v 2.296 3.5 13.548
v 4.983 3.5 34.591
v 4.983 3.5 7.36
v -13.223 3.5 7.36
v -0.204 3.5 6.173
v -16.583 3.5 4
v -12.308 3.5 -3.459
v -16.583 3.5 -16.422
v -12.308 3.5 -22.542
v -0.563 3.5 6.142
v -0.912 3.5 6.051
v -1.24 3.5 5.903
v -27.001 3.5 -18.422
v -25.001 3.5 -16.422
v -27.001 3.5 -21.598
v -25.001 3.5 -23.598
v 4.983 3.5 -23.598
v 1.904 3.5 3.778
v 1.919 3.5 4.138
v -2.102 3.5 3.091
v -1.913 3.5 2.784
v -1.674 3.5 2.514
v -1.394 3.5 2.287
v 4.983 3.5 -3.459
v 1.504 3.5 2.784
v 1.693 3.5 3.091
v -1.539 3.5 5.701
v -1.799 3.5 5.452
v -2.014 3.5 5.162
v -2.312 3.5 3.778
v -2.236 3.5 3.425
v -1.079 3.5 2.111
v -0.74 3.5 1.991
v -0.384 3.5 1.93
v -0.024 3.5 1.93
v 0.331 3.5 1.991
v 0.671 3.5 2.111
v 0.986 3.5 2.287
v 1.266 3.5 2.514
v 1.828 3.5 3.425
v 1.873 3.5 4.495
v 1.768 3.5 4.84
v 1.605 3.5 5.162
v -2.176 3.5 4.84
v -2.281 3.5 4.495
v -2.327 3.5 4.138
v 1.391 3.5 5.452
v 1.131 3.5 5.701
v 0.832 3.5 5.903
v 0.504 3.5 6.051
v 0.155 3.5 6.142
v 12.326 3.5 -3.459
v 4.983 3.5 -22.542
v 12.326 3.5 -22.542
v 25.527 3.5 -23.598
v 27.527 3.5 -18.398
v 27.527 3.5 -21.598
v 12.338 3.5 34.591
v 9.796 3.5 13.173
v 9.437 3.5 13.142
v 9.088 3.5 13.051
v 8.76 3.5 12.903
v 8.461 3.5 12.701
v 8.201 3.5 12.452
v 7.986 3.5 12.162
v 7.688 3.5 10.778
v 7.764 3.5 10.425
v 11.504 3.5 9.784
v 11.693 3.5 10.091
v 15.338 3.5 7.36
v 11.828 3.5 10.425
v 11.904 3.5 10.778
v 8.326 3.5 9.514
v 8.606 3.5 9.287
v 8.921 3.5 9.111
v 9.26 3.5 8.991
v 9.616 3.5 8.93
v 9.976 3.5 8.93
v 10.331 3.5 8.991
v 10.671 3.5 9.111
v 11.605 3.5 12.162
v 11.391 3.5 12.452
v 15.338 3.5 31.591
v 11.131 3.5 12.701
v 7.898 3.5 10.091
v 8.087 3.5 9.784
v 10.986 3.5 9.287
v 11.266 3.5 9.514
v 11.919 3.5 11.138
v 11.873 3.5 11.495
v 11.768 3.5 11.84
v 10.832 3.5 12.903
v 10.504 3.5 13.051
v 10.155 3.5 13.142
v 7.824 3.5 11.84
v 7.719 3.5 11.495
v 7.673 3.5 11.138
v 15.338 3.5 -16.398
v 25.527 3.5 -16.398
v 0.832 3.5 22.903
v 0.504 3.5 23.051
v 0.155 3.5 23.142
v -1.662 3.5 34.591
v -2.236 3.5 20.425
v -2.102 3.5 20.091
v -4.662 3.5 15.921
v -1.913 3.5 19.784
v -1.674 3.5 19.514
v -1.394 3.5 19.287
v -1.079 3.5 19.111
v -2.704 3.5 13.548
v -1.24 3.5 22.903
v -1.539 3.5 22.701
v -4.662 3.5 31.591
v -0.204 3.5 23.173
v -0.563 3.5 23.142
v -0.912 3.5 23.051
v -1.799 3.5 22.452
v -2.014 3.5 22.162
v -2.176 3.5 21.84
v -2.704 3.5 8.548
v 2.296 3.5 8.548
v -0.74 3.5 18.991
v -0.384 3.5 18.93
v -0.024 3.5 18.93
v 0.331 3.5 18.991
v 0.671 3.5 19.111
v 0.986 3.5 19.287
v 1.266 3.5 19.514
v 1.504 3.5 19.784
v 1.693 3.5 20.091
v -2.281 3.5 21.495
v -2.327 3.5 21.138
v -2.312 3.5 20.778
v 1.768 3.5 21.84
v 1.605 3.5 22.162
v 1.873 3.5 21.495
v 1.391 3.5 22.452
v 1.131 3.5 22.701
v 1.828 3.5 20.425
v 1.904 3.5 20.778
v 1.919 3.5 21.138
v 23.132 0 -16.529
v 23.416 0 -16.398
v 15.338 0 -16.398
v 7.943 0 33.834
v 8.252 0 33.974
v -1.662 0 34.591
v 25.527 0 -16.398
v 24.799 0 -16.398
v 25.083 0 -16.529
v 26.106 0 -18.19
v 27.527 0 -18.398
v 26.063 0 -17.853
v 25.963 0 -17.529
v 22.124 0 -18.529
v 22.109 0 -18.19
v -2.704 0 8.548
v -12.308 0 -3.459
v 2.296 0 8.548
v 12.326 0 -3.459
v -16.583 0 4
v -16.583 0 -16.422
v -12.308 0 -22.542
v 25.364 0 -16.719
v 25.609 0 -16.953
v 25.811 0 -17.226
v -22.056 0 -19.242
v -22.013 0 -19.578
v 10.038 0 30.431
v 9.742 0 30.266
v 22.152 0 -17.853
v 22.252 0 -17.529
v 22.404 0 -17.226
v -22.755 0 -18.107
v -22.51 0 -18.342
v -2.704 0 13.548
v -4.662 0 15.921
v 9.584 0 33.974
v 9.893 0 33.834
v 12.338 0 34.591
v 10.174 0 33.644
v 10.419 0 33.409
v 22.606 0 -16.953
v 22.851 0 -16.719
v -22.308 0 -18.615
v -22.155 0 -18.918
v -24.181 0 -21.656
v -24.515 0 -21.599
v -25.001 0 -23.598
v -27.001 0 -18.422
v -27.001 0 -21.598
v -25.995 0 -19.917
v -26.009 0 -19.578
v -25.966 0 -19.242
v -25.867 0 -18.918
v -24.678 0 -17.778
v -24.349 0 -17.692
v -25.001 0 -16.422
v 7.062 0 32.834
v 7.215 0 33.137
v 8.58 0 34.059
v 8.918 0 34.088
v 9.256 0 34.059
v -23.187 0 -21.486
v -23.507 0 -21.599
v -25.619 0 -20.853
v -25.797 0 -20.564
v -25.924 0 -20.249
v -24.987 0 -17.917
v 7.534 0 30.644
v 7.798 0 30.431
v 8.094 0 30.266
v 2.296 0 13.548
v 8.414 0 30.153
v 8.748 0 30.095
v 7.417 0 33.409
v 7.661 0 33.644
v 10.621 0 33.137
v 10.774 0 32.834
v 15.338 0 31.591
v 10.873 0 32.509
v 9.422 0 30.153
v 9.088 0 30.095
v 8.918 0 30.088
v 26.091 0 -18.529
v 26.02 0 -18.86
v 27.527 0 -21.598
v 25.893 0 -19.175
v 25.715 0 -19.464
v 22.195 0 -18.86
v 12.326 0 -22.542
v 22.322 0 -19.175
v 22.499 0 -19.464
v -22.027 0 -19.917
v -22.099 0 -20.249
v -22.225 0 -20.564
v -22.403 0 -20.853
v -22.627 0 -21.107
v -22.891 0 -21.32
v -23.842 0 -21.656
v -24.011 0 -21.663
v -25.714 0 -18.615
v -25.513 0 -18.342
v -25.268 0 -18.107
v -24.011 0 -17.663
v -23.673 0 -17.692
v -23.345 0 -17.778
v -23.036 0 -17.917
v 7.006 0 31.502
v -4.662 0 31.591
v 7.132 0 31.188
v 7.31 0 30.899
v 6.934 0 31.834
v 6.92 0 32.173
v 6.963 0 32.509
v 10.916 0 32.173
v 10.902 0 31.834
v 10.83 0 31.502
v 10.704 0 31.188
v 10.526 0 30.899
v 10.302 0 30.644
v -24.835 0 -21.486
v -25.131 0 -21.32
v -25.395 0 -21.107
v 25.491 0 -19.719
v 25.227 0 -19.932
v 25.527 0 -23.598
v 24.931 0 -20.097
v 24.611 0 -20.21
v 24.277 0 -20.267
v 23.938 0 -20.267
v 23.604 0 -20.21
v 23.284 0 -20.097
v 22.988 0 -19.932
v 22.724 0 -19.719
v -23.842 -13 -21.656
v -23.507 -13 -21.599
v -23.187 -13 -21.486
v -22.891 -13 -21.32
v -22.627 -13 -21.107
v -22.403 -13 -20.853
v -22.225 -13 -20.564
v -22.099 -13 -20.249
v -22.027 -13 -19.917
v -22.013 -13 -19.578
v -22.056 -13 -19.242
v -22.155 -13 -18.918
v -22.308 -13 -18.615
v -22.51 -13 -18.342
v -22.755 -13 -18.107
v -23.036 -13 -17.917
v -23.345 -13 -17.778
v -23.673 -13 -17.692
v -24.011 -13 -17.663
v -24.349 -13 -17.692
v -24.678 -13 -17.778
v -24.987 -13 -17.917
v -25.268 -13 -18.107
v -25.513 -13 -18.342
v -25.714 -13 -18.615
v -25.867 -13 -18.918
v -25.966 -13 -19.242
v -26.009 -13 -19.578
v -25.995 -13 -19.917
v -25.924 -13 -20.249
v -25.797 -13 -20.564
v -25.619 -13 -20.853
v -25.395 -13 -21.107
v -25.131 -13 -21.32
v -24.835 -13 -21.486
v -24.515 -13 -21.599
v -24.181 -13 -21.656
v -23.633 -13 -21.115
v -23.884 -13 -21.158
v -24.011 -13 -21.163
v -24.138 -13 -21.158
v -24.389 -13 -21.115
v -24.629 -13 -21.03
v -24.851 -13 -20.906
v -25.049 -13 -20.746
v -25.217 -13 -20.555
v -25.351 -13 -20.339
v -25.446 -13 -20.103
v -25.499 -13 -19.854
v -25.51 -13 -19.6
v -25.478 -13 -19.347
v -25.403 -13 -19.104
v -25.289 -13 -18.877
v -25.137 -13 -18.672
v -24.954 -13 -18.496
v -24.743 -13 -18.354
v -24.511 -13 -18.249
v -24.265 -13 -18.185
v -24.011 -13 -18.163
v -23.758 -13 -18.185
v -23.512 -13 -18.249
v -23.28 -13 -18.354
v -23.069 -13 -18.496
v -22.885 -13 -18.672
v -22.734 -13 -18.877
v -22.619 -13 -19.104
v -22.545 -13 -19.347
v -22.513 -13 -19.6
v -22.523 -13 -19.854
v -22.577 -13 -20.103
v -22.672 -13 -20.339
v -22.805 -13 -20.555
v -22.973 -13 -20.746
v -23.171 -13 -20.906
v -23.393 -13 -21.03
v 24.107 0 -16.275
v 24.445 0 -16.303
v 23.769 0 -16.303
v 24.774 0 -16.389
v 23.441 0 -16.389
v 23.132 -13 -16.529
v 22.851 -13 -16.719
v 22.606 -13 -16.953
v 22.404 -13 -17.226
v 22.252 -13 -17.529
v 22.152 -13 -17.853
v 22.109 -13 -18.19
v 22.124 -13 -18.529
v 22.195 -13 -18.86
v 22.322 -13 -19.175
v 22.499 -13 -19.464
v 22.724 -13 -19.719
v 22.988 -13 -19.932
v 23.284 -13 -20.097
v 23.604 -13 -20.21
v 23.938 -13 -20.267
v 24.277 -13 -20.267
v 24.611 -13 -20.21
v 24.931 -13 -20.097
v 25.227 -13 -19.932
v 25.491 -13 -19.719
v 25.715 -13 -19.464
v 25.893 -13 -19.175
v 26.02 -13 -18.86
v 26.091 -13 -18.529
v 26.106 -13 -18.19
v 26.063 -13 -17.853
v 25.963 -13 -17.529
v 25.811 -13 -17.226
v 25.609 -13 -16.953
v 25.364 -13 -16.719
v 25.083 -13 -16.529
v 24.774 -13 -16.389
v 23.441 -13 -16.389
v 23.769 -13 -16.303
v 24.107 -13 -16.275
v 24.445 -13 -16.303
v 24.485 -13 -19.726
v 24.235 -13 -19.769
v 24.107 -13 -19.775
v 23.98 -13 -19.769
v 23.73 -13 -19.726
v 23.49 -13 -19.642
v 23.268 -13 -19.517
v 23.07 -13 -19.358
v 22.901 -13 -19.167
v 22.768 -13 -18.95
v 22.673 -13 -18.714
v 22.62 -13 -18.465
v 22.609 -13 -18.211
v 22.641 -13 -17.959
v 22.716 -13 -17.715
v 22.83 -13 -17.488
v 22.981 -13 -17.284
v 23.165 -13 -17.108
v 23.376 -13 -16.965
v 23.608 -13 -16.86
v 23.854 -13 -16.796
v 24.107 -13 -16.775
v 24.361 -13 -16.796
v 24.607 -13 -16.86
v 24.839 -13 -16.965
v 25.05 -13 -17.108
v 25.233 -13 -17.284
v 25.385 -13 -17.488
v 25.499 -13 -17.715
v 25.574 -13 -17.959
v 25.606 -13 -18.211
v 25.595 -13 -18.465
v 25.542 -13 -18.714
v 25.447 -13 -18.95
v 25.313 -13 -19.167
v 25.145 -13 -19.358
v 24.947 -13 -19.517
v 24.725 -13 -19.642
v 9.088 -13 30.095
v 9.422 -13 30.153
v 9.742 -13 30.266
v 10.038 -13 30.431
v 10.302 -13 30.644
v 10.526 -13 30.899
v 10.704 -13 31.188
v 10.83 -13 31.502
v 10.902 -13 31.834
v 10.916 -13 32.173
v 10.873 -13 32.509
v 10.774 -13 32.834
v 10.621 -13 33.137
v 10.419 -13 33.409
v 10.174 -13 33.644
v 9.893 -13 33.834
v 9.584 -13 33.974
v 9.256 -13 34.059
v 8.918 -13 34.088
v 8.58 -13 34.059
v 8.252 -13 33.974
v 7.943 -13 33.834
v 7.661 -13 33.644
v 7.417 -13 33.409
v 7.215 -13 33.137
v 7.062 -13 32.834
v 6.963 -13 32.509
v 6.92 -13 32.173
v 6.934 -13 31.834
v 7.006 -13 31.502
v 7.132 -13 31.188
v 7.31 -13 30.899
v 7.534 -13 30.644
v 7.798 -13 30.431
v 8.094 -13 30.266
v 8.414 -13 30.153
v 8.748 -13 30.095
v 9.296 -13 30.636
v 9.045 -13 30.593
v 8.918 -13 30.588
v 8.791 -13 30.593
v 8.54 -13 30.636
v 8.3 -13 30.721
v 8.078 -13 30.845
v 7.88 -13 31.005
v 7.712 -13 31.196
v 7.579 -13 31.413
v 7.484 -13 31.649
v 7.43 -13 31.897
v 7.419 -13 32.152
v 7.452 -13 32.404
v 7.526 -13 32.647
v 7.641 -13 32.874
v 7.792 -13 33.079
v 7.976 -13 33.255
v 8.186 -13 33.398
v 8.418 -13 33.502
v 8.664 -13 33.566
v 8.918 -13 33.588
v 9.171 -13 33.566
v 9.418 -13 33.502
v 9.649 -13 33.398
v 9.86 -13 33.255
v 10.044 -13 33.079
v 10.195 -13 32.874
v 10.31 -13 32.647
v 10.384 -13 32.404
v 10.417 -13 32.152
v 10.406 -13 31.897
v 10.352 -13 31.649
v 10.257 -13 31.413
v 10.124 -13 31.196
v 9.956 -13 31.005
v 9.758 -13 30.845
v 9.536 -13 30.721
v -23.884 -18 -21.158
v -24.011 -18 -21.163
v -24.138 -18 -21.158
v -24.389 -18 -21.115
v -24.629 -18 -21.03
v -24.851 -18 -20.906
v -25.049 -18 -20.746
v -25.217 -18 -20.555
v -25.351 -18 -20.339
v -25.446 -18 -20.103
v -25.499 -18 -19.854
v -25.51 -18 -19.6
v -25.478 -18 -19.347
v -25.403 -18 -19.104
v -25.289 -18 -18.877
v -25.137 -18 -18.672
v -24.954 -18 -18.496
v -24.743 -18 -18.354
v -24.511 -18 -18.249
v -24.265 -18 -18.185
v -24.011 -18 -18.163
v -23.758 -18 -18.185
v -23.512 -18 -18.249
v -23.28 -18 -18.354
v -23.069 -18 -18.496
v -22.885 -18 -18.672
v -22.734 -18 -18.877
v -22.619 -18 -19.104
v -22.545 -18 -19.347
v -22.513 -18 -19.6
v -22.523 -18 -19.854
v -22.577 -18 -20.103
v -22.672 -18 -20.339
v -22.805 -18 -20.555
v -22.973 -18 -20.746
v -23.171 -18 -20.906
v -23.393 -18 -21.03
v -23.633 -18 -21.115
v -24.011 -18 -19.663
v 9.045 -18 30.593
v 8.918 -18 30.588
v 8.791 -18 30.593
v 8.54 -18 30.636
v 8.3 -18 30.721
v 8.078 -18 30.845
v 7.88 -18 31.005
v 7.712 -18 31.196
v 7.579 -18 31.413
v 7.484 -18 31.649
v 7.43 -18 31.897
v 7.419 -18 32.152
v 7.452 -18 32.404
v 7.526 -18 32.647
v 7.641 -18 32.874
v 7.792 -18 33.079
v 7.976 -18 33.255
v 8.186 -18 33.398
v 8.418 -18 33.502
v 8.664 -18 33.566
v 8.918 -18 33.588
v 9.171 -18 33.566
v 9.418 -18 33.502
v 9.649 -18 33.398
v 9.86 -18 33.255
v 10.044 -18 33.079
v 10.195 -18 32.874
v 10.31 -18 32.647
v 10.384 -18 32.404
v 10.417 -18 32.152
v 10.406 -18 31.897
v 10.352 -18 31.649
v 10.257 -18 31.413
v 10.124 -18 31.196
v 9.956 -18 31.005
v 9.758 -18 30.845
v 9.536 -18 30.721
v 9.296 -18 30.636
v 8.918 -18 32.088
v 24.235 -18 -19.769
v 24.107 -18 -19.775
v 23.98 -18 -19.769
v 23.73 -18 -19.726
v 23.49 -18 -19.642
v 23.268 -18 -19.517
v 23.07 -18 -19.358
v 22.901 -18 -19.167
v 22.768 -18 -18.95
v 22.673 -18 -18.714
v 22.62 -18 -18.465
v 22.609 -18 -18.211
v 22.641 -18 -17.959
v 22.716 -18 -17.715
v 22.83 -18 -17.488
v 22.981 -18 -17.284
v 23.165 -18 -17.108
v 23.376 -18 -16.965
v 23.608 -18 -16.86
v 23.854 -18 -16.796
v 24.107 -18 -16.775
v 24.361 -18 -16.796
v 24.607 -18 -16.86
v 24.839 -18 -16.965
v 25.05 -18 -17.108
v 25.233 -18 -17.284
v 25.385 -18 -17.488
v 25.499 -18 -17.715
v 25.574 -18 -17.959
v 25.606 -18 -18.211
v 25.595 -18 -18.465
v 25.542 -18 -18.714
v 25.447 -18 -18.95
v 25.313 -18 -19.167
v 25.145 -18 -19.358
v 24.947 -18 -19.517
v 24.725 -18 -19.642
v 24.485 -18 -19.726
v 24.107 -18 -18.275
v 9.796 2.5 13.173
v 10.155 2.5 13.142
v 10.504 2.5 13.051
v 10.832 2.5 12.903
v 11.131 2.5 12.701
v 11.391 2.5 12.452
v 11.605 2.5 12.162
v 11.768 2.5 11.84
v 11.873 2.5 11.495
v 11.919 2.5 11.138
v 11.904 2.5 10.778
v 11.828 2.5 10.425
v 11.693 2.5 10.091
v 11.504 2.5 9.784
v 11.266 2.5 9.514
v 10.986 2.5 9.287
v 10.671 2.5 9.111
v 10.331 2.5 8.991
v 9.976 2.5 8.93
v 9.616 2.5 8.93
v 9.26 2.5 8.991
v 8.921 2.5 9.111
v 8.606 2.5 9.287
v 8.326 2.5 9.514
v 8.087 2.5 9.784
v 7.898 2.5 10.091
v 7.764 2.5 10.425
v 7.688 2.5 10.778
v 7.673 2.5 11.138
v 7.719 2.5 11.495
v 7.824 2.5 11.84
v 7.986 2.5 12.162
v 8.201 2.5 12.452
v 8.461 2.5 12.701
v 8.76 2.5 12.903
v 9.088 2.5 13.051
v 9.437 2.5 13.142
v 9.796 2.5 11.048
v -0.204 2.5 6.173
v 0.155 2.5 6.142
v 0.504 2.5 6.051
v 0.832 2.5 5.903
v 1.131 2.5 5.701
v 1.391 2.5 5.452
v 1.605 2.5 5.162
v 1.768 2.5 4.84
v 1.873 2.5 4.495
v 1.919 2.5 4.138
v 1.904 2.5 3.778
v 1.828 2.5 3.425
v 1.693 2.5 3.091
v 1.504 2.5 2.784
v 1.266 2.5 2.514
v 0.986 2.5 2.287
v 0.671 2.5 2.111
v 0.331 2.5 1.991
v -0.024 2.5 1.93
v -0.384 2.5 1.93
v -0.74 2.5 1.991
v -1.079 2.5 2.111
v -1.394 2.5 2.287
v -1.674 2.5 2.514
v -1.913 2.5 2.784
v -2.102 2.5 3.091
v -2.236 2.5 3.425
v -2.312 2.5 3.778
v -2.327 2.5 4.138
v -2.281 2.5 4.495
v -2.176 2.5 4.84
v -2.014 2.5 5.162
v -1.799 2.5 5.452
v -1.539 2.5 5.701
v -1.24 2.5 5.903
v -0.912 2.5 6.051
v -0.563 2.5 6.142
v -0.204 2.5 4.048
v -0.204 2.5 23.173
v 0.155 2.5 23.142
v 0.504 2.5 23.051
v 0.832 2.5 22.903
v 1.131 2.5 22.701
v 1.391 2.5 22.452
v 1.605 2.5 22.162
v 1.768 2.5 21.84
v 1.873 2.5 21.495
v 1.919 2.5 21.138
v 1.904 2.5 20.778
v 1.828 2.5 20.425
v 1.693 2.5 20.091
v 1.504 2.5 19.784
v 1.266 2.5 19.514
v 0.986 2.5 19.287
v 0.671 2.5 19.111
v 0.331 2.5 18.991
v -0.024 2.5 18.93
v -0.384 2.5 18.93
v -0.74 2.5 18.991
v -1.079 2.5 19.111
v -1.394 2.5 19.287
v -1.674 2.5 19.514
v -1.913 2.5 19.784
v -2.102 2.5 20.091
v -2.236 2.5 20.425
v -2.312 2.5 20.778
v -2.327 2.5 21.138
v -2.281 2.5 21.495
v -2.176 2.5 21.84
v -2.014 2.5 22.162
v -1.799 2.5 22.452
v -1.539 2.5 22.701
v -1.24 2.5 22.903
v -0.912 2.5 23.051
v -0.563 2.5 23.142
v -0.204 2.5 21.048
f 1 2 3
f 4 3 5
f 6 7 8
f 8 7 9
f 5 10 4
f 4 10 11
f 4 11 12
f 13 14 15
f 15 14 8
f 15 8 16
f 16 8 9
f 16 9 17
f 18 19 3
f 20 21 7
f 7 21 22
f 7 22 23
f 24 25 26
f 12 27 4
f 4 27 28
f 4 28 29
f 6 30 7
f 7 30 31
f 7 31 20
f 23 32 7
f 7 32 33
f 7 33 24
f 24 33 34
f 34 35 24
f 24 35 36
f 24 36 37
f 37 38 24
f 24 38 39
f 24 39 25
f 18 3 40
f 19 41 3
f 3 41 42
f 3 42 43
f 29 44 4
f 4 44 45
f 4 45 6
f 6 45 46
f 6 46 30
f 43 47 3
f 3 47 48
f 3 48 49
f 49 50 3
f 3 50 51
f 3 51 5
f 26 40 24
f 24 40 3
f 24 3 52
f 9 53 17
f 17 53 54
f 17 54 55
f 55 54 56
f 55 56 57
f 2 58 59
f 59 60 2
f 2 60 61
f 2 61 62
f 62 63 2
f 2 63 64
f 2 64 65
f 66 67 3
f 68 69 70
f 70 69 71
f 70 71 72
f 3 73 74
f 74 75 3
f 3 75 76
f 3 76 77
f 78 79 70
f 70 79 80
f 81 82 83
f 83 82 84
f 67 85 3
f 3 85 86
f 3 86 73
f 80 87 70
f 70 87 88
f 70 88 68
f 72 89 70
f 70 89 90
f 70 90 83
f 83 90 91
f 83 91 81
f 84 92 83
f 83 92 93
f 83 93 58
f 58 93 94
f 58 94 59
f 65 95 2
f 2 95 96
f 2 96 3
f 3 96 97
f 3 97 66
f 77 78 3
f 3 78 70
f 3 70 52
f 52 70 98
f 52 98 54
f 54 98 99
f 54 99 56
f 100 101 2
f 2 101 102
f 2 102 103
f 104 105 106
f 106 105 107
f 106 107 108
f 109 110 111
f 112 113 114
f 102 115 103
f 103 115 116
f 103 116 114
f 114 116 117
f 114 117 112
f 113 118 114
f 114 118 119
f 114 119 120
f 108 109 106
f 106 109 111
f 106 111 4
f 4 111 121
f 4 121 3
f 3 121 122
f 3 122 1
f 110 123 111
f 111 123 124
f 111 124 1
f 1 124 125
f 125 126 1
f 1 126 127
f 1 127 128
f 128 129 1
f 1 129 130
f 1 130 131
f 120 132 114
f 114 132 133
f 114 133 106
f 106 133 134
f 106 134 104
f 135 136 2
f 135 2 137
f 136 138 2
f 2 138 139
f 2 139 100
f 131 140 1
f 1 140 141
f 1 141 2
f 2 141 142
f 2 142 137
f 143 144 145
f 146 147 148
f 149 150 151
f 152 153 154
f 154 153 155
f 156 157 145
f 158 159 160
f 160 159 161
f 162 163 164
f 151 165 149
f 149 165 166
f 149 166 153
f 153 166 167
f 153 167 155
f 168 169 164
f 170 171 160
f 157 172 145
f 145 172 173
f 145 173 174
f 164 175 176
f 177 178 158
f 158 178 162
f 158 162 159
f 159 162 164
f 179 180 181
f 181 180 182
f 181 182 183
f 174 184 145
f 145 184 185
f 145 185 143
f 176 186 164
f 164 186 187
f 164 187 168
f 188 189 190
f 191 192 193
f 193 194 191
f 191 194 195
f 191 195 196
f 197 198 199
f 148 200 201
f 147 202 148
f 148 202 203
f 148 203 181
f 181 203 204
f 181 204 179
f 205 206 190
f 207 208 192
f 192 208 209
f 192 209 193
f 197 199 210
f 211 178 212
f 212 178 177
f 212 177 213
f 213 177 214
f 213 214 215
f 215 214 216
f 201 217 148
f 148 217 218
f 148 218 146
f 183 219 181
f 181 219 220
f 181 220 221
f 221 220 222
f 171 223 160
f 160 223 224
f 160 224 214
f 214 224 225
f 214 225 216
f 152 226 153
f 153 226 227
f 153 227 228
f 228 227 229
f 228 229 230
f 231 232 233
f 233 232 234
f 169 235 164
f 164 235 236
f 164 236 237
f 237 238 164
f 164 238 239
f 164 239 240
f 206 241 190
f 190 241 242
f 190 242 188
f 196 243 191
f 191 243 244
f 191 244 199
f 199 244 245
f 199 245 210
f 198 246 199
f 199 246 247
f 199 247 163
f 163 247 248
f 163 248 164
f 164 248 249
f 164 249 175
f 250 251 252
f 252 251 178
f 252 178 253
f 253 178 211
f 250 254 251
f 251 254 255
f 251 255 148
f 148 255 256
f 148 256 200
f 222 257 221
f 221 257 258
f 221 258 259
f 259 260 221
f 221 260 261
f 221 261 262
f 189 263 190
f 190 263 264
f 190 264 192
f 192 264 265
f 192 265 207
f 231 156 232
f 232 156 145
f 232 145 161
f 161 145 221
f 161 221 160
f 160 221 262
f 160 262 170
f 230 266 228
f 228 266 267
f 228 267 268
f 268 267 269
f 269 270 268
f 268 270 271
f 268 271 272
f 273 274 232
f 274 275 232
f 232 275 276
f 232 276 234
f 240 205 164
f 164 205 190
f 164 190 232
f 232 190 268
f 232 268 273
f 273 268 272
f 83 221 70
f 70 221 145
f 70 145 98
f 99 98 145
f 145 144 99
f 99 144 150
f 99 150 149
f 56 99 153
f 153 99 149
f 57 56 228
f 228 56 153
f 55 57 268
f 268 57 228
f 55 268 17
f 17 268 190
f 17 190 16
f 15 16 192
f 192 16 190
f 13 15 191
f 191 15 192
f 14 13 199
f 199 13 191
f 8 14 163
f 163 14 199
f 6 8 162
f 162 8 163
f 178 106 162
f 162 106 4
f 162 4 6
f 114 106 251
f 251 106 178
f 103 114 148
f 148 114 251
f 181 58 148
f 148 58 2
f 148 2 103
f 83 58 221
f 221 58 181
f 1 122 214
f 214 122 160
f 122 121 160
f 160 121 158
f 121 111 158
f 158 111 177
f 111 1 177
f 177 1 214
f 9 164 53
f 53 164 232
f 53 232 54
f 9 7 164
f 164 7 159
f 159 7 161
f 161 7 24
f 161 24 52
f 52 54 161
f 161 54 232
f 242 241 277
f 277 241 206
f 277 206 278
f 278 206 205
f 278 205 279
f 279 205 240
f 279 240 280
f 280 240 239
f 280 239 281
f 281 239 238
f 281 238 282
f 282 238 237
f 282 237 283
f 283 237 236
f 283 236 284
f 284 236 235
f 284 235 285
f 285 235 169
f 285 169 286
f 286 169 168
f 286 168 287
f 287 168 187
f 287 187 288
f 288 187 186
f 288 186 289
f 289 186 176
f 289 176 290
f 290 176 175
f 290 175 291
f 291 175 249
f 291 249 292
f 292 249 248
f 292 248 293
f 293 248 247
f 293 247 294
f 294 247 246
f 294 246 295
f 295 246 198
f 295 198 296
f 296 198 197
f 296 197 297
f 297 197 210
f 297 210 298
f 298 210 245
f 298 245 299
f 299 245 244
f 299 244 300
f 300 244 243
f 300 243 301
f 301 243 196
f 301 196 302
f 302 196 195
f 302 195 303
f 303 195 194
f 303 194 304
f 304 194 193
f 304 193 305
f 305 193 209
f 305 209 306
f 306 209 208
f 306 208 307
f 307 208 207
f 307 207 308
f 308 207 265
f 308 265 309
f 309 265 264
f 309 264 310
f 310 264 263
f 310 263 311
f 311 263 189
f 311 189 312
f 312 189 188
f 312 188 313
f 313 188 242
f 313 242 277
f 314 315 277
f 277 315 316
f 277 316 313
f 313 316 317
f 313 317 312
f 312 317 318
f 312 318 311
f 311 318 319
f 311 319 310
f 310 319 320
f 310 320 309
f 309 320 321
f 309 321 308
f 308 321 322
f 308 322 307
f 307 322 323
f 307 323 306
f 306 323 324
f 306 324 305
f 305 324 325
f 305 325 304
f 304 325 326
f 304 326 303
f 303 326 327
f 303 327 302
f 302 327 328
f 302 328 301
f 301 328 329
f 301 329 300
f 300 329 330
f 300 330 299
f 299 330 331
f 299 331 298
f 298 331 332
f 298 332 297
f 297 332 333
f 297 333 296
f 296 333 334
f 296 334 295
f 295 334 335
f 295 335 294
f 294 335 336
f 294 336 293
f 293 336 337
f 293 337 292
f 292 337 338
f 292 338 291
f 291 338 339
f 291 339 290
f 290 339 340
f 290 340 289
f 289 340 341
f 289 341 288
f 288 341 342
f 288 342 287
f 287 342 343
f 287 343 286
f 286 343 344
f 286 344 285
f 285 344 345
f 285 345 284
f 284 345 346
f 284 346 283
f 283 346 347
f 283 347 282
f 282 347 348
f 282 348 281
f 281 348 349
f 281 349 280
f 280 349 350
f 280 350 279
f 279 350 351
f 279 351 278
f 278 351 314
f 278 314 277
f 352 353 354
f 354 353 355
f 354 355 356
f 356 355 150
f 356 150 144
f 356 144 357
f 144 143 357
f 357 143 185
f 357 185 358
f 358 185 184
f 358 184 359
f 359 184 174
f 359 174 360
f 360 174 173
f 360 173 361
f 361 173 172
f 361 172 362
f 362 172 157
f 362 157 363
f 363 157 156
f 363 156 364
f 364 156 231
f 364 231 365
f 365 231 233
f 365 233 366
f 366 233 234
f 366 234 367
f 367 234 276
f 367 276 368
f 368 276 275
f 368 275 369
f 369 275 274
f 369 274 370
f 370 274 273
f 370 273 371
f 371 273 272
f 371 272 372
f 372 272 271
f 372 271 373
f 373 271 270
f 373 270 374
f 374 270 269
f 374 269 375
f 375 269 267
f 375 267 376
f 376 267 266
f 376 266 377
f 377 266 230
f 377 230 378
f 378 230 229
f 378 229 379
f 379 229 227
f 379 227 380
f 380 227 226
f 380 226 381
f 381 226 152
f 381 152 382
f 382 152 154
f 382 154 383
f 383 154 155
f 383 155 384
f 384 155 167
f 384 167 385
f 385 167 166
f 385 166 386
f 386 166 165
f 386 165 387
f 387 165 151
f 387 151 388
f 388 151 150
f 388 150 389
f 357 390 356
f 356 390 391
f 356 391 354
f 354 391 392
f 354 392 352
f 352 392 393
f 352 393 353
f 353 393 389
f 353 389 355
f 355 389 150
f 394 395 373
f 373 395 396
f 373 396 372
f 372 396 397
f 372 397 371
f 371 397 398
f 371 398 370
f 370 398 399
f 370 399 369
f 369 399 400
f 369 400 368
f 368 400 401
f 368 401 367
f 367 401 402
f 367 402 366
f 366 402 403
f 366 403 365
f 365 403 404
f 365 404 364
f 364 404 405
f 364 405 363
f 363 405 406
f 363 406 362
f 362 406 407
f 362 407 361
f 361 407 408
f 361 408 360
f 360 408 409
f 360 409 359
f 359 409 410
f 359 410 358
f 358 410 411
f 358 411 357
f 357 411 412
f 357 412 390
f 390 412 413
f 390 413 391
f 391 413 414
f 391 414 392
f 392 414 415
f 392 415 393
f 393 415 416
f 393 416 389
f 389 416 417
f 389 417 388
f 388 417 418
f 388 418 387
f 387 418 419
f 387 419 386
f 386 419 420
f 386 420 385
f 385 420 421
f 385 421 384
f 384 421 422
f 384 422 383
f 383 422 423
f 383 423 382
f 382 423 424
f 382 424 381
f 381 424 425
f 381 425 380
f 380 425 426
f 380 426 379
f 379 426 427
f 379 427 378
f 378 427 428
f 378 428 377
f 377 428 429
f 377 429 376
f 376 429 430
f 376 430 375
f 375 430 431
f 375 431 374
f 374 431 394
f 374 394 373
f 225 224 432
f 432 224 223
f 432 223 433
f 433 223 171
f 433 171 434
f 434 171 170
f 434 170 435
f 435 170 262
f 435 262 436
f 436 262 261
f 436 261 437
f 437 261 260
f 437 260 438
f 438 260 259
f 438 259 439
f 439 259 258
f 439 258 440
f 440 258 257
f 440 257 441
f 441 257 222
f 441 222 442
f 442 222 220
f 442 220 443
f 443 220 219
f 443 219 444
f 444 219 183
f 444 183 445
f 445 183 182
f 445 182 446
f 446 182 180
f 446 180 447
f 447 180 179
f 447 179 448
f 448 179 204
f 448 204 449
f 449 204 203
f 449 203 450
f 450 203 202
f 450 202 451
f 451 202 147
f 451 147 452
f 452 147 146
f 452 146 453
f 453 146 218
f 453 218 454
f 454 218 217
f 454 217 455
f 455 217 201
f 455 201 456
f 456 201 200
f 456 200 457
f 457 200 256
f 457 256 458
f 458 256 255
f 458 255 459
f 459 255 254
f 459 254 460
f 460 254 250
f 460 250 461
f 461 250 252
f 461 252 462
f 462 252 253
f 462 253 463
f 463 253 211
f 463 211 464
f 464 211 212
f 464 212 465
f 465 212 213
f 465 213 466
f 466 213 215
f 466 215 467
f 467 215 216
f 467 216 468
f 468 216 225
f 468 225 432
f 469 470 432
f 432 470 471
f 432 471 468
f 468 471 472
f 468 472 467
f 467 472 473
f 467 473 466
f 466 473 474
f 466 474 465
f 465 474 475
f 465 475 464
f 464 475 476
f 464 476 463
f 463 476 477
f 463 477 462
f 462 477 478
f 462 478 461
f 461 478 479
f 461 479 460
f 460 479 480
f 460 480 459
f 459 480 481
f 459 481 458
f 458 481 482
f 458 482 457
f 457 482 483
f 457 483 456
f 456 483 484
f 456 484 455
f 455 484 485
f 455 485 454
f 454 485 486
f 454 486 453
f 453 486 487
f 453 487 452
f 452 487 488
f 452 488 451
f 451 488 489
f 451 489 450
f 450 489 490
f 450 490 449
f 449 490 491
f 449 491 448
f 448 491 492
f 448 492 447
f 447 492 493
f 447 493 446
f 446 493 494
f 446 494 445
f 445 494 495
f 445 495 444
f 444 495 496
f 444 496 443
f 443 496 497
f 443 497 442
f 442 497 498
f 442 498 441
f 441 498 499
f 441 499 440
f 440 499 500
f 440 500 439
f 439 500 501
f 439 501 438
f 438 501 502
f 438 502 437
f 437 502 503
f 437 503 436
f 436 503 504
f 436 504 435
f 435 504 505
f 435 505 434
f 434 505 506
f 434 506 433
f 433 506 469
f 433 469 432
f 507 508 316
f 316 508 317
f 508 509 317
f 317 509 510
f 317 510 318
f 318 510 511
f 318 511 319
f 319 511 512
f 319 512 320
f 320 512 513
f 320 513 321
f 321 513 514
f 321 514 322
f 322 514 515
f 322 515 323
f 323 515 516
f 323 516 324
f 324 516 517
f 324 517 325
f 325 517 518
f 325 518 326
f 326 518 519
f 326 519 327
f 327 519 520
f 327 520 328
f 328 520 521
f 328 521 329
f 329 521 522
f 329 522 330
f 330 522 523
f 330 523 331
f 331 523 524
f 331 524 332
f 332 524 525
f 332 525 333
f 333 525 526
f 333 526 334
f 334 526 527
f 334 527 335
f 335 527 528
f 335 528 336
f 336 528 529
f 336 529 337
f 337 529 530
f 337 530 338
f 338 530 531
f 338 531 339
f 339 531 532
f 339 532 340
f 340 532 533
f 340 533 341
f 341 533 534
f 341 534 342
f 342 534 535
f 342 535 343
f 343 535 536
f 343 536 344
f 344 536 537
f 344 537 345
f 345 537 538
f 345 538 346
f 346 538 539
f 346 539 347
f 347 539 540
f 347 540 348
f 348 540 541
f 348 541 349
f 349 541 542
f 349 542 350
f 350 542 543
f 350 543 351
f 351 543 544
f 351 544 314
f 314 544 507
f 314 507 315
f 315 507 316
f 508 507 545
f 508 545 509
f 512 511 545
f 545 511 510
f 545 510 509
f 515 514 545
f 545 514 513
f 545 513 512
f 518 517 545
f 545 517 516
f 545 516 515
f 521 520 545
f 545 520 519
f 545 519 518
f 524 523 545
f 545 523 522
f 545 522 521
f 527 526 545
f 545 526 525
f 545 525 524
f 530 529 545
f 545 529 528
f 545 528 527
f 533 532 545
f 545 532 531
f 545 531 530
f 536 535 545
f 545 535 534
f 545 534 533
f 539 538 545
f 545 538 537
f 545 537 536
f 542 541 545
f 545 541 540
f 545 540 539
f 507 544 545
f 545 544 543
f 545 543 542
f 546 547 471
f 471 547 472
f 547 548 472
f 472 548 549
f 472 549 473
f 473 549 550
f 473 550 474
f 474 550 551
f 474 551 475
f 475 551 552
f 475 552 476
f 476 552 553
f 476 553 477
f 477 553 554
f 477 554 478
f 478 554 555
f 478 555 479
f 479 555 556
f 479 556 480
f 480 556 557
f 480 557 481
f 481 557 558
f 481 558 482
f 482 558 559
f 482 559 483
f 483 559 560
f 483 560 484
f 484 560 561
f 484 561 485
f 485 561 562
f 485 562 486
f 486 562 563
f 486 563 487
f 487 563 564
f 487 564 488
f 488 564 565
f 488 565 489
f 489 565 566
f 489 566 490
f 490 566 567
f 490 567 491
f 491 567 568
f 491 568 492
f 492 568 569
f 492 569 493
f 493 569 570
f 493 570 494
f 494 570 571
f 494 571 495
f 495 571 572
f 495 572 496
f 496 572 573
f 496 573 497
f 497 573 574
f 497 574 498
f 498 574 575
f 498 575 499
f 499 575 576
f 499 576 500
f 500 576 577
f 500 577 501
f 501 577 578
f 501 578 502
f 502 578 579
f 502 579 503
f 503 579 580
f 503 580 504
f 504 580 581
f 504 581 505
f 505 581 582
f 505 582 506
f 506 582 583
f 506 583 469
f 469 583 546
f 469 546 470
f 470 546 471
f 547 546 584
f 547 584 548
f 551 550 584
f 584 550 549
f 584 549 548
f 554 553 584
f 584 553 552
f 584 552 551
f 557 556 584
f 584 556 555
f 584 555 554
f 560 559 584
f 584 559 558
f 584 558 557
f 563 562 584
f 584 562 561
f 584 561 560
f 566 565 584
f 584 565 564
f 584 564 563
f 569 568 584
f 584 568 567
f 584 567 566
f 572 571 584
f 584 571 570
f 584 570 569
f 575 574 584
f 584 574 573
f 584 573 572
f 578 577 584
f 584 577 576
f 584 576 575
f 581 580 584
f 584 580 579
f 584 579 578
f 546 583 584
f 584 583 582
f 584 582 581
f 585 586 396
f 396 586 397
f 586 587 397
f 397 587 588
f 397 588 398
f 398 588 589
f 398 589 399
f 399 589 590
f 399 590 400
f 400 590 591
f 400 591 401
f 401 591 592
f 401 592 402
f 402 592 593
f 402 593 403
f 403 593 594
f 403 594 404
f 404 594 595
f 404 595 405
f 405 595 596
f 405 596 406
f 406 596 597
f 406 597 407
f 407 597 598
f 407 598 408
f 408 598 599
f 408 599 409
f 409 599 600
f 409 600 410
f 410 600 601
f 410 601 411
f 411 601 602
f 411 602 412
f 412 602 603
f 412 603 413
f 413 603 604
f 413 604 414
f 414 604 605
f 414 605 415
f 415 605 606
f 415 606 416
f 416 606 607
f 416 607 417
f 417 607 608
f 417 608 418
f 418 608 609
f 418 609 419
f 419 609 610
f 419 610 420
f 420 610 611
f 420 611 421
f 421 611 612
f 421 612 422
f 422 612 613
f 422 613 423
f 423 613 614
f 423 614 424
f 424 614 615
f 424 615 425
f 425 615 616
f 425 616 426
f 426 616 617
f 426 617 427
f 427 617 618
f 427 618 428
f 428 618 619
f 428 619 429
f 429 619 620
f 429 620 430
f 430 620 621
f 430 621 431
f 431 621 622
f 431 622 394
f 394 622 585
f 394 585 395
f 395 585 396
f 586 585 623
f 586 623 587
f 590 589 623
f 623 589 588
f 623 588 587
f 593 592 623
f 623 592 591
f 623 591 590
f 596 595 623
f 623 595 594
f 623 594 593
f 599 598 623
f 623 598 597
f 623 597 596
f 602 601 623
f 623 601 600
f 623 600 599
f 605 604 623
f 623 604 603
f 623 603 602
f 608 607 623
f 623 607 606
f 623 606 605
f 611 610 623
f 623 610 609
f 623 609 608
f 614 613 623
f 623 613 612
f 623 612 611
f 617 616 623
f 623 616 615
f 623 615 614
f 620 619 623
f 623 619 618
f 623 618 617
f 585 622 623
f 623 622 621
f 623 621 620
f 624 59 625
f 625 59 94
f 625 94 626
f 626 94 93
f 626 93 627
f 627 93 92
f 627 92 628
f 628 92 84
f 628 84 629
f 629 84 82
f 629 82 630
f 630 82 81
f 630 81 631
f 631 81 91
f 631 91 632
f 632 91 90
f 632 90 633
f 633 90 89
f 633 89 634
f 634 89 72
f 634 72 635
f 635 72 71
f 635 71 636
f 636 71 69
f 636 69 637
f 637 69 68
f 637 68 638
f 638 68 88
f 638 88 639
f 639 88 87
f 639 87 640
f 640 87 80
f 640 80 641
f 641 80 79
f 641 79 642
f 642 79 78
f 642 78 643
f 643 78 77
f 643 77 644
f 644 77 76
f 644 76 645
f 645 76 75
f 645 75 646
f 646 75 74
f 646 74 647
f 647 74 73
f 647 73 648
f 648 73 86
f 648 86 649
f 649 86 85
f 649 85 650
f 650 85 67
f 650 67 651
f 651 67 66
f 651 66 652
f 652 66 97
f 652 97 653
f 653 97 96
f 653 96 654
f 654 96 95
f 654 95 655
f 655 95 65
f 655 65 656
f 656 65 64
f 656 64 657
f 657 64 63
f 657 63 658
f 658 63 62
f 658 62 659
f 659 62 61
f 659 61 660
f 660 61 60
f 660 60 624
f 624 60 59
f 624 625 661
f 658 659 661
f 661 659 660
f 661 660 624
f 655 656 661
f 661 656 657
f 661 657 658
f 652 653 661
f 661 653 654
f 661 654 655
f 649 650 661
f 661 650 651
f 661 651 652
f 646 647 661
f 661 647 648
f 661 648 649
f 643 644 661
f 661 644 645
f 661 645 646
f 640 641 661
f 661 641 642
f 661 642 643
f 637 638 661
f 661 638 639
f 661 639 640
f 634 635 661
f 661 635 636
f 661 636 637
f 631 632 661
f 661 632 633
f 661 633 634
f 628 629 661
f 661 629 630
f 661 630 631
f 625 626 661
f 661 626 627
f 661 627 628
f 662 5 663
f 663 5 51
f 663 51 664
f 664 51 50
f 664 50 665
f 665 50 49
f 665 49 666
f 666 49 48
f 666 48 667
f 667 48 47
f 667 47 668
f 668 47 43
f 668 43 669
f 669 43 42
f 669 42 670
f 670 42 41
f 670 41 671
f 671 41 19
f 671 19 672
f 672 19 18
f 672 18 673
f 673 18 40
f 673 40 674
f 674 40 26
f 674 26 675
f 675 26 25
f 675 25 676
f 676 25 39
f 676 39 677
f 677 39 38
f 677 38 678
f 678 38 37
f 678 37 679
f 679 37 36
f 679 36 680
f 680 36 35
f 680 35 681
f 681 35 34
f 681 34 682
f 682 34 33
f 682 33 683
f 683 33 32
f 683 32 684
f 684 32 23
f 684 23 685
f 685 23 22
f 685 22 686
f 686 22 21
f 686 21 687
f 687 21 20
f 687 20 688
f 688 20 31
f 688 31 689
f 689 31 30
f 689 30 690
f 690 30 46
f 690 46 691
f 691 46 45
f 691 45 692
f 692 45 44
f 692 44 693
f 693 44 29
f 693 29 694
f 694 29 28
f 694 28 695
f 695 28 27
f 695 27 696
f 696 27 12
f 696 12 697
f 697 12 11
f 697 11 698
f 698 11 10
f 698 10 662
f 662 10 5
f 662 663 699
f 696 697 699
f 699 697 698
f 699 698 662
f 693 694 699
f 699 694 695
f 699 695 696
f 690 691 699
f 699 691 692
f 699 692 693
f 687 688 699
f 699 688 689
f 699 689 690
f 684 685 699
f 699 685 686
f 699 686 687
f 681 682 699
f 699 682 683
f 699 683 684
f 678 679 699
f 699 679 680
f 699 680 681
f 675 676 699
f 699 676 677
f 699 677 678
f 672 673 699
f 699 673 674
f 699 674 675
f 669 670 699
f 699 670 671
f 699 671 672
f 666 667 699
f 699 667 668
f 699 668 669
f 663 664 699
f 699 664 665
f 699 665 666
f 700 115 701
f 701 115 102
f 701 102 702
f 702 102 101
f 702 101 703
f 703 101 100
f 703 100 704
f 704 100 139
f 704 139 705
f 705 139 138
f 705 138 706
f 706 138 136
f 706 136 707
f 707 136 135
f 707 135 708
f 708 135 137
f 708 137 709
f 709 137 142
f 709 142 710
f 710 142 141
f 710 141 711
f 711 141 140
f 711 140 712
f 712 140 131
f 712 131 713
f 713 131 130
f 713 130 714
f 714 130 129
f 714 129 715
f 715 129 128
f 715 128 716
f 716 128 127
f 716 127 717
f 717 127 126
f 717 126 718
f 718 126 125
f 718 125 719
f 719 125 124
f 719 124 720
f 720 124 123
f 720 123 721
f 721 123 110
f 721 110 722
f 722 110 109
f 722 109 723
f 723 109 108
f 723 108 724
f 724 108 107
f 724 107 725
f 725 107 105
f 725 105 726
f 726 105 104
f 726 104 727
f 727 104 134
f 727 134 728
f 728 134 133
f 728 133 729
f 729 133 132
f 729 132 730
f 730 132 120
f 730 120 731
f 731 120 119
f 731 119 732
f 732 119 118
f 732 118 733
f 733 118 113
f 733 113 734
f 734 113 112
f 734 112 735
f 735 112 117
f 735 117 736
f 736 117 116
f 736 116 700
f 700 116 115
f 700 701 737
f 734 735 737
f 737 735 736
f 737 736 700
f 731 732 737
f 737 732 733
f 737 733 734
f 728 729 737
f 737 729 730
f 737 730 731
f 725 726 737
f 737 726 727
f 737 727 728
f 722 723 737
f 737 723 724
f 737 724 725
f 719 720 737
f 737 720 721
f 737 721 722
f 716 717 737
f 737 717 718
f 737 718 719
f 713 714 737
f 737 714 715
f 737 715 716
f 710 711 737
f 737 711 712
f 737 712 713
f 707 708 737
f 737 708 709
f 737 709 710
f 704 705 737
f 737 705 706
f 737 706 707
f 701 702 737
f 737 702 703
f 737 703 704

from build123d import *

# Parameters (mm, degrees)
SKETCH4_W           = 24.633837396
SKETCH4_H           = 19.082768461
SKETCH4_W_2         = 5
SKETCH4_H_2         = 5
MAINBRACKET_DEPTH   = 3.5
SKETCH3_R           = 2
BOSS_EXTRUDE2_DEPTH = 13
SKETCH6_R           = 1.5
BOSS_EXTRUDE3_DEPTH = 5
SKETCH7_R           = 2.125
CUT_EXTRUDE1_DEPTH  = 1


with BuildPart() as part:
    # Sketch4 → MainBracket (new body)
    with BuildSketch(Plane(origin=(0, 0, 0), x_dir=(1, 0, 0), z_dir=(0, 1, 0))):
        Polygon((-25.001052975, 23.597895529), (25.52718448, 23.597895529), (27.52718448, 21.597895529), (27.52718448, 18.397895529), (25.52718448, 16.397895529), (15.338231538, 16.397895529), (15.338231538, -31.590979949), (12.338231538, -34.590979949), (-1.661768462, -34.590979949), (-4.661768462, -31.590979949), (-4.661768462, -15.921260677), (-16.583029139, -4), (-16.583029139, 16.421906692), (-25.001052975, 16.421906692), (-27.001052975, 18.421906692), (-27.001052975, 21.597895529), align=None)
        with Locations((0.008956485, 13.000441896)):
            Rectangle(SKETCH4_W, SKETCH4_H, mode=Mode.SUBTRACT)
        with Locations((-0.204070078, -11.047717724)):
            Rectangle(SKETCH4_W_2, SKETCH4_H_2, mode=Mode.SUBTRACT)
    extrude(amount=MAINBRACKET_DEPTH)

    # Sketch3 → Boss-Extrude2 (add)
    with BuildSketch(Plane(origin=(0, 0, 0), x_dir=(1, 0, 0), z_dir=(0, 1, 0))):
        with Locations((-24.011269627, 19.663273311)):
            Circle(SKETCH3_R)
        with Locations((24.107482847, 18.27469294)):
            Circle(SKETCH3_R)
        with Locations((8.917908931, -32.088026328)):
            Circle(SKETCH3_R)
    extrude(amount=-BOSS_EXTRUDE2_DEPTH)

    # Sketch6 → Boss-Extrude3 (add)
    with BuildSketch(Plane.XZ.offset(13)):
        with Locations((-24.011269627, -19.663273311)):
            Circle(SKETCH6_R)
        with Locations((8.917908931, 32.088026328)):
            Circle(SKETCH6_R)
        with Locations((24.107482847, -18.27469294)):
            Circle(SKETCH6_R)
    extrude(amount=BOSS_EXTRUDE3_DEPTH)

    # Sketch7 → Cut-Extrude1 (cut)
    with BuildSketch(Plane(origin=(0, 3.5, 0), x_dir=(1, 0, 0), z_dir=(0, 1, 0))):
        with Locations((-0.204070078, -21.047717724)):
            Circle(SKETCH7_R)
        with Locations((-0.204070078, -4.047717724)):
            Circle(SKETCH7_R)
        with Locations((9.795929922, -11.047717724)):
            Circle(SKETCH7_R)
    extrude(amount=-CUT_EXTRUDE1_DEPTH, mode=Mode.SUBTRACT)


solid = part.part
